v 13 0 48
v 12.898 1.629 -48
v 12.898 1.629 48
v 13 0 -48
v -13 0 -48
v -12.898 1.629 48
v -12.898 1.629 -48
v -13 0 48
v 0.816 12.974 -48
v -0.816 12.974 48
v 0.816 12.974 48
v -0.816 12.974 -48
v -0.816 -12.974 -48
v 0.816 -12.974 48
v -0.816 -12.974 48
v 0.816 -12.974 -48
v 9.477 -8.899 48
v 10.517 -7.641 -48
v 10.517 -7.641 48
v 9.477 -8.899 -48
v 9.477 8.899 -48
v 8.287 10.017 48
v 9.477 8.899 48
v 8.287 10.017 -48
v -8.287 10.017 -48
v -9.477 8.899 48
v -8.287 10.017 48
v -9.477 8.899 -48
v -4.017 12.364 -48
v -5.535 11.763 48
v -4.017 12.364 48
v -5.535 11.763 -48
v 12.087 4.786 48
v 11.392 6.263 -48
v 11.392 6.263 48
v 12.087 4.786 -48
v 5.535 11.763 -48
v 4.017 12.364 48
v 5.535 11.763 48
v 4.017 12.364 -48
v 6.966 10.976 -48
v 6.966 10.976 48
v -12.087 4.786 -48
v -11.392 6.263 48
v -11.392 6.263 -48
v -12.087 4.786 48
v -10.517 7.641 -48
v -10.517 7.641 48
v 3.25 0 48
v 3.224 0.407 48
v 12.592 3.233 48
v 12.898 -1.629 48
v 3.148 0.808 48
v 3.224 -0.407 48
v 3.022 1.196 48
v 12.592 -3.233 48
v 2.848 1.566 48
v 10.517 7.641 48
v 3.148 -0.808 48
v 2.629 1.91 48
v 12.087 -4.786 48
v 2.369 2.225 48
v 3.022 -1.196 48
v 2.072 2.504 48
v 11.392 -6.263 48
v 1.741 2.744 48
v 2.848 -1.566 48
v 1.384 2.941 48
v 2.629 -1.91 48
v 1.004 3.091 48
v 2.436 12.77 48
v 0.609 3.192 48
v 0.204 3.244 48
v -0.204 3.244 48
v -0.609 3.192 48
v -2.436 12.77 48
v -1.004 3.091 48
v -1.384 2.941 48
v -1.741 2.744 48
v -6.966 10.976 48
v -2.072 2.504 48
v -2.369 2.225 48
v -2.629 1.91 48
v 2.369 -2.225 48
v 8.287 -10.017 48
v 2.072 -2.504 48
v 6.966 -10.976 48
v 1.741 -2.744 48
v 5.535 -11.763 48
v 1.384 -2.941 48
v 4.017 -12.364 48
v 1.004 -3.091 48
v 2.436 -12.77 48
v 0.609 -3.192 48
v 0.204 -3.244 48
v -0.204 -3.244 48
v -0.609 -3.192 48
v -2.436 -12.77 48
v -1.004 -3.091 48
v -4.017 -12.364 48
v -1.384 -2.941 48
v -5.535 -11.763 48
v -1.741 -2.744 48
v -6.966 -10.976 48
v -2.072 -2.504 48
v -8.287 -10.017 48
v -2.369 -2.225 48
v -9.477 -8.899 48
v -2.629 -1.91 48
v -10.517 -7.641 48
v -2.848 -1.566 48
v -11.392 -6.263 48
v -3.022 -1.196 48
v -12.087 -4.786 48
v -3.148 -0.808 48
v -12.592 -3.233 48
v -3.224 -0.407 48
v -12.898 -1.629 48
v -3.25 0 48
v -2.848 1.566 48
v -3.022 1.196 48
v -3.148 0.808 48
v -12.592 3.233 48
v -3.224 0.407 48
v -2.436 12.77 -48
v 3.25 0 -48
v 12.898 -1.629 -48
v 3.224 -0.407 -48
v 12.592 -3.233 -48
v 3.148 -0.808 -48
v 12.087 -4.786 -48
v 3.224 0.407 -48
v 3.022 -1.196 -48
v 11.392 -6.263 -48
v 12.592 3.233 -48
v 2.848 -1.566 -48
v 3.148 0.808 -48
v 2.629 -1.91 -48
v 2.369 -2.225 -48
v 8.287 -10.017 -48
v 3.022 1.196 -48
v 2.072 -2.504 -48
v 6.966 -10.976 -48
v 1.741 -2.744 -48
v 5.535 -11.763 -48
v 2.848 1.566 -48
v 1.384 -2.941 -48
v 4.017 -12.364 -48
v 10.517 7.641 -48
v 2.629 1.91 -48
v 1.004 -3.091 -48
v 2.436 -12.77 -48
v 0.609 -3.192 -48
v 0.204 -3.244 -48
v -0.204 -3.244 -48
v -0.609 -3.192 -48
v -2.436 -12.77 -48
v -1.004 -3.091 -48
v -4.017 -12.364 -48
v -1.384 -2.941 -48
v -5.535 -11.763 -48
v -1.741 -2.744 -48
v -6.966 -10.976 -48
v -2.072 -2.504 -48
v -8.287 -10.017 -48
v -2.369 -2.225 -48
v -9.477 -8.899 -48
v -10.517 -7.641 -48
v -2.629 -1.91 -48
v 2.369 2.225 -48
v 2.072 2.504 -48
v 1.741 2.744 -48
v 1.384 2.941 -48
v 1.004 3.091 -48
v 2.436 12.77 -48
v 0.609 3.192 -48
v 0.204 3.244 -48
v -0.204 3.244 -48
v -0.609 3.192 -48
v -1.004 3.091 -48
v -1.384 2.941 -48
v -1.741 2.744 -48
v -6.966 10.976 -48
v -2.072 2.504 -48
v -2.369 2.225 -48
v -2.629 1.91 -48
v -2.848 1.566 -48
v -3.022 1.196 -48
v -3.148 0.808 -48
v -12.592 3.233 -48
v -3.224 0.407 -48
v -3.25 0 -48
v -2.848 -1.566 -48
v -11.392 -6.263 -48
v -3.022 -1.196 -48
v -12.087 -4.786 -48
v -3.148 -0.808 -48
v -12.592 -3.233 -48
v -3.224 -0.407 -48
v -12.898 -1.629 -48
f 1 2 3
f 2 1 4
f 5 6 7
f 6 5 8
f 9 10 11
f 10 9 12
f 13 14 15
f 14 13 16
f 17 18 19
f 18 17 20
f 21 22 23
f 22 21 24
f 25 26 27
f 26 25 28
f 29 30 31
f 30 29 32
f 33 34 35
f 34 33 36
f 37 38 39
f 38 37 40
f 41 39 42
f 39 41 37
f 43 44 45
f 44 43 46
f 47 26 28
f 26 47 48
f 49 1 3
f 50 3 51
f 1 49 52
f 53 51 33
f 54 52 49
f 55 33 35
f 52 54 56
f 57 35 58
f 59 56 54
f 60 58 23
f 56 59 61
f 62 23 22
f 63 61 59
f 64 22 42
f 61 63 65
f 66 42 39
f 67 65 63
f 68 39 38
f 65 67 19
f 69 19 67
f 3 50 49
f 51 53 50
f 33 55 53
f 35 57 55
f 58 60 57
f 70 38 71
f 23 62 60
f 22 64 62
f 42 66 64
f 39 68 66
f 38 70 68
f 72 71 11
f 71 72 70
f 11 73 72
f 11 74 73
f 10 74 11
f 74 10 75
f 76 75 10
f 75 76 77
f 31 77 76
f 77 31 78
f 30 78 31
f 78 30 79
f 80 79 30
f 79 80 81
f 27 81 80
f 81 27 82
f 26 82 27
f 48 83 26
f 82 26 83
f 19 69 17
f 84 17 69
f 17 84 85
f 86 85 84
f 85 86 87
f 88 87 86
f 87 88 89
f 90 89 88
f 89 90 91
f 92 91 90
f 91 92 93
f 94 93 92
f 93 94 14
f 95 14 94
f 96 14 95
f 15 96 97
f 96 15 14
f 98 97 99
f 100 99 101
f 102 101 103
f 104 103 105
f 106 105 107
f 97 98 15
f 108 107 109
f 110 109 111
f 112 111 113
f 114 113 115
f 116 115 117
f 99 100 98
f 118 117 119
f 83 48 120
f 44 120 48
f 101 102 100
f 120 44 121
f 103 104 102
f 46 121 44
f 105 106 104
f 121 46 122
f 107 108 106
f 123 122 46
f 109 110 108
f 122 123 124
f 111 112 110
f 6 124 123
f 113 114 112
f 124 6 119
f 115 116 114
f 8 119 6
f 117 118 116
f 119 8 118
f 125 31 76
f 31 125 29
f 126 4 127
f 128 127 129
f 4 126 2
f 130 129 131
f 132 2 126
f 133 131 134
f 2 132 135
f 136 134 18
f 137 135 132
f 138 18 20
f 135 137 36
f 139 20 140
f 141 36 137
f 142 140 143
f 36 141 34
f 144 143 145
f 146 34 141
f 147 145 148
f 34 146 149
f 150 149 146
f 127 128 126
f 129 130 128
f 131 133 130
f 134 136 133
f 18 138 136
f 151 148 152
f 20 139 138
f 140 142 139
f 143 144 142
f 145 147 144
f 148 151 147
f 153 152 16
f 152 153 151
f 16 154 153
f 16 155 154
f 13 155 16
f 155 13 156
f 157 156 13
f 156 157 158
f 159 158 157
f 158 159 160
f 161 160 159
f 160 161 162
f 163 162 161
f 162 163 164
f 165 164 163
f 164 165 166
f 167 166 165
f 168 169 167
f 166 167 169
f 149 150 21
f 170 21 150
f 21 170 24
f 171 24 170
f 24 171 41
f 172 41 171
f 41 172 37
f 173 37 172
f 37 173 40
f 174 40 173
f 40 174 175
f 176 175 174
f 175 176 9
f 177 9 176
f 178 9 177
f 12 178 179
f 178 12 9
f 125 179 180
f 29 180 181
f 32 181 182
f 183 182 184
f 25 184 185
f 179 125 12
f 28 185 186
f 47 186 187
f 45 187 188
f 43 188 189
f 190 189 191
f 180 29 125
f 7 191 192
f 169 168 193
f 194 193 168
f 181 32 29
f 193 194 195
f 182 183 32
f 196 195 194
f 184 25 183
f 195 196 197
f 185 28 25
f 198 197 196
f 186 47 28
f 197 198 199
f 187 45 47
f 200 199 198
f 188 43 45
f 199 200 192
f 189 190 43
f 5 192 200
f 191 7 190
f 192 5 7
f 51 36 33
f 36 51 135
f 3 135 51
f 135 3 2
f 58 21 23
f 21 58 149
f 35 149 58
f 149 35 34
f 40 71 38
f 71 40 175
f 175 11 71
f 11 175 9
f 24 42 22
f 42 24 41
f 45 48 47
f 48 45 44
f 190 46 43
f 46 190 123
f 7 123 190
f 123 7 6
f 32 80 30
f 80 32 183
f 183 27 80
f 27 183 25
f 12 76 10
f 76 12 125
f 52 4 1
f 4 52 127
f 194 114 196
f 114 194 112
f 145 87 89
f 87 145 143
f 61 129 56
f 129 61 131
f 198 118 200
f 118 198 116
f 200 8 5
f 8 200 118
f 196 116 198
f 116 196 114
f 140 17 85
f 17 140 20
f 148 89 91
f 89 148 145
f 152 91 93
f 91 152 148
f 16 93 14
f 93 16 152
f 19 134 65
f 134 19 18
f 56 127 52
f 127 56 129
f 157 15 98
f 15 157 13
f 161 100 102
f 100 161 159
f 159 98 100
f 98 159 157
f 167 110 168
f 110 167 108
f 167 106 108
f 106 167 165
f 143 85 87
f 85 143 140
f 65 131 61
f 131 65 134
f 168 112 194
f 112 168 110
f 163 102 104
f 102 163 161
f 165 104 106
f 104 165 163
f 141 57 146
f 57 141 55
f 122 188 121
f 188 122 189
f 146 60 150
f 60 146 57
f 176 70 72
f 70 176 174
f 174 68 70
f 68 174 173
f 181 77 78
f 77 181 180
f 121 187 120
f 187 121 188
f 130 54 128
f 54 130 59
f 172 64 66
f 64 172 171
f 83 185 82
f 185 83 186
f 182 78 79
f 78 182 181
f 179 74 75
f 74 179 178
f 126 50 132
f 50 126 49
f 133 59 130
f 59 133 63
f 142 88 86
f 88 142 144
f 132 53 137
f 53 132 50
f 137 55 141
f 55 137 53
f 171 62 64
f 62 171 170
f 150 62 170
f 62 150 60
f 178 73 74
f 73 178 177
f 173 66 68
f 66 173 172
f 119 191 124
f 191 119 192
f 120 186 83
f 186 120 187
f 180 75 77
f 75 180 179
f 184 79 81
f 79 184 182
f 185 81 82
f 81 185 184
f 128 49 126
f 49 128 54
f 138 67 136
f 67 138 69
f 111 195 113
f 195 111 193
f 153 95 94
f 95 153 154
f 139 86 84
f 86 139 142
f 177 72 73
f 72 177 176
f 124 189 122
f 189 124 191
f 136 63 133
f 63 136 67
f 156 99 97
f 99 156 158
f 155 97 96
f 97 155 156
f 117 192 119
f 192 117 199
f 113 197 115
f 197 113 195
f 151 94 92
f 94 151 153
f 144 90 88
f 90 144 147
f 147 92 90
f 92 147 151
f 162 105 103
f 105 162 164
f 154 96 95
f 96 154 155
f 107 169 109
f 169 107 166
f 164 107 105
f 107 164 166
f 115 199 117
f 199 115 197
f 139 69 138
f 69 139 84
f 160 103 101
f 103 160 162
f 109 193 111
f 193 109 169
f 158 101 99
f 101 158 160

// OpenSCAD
$fn = 50;


difference() {
	union() {
		translate(v = [0, 0, -48.0000000000]) {
			cylinder(h = 96, r = 13.0000000000);
		}
	}
	union() {
		translate(v = [0, 0, -100.0000000000]) {
			cylinder(h = 200, r = 3.2500000000);
		}
	}
}
